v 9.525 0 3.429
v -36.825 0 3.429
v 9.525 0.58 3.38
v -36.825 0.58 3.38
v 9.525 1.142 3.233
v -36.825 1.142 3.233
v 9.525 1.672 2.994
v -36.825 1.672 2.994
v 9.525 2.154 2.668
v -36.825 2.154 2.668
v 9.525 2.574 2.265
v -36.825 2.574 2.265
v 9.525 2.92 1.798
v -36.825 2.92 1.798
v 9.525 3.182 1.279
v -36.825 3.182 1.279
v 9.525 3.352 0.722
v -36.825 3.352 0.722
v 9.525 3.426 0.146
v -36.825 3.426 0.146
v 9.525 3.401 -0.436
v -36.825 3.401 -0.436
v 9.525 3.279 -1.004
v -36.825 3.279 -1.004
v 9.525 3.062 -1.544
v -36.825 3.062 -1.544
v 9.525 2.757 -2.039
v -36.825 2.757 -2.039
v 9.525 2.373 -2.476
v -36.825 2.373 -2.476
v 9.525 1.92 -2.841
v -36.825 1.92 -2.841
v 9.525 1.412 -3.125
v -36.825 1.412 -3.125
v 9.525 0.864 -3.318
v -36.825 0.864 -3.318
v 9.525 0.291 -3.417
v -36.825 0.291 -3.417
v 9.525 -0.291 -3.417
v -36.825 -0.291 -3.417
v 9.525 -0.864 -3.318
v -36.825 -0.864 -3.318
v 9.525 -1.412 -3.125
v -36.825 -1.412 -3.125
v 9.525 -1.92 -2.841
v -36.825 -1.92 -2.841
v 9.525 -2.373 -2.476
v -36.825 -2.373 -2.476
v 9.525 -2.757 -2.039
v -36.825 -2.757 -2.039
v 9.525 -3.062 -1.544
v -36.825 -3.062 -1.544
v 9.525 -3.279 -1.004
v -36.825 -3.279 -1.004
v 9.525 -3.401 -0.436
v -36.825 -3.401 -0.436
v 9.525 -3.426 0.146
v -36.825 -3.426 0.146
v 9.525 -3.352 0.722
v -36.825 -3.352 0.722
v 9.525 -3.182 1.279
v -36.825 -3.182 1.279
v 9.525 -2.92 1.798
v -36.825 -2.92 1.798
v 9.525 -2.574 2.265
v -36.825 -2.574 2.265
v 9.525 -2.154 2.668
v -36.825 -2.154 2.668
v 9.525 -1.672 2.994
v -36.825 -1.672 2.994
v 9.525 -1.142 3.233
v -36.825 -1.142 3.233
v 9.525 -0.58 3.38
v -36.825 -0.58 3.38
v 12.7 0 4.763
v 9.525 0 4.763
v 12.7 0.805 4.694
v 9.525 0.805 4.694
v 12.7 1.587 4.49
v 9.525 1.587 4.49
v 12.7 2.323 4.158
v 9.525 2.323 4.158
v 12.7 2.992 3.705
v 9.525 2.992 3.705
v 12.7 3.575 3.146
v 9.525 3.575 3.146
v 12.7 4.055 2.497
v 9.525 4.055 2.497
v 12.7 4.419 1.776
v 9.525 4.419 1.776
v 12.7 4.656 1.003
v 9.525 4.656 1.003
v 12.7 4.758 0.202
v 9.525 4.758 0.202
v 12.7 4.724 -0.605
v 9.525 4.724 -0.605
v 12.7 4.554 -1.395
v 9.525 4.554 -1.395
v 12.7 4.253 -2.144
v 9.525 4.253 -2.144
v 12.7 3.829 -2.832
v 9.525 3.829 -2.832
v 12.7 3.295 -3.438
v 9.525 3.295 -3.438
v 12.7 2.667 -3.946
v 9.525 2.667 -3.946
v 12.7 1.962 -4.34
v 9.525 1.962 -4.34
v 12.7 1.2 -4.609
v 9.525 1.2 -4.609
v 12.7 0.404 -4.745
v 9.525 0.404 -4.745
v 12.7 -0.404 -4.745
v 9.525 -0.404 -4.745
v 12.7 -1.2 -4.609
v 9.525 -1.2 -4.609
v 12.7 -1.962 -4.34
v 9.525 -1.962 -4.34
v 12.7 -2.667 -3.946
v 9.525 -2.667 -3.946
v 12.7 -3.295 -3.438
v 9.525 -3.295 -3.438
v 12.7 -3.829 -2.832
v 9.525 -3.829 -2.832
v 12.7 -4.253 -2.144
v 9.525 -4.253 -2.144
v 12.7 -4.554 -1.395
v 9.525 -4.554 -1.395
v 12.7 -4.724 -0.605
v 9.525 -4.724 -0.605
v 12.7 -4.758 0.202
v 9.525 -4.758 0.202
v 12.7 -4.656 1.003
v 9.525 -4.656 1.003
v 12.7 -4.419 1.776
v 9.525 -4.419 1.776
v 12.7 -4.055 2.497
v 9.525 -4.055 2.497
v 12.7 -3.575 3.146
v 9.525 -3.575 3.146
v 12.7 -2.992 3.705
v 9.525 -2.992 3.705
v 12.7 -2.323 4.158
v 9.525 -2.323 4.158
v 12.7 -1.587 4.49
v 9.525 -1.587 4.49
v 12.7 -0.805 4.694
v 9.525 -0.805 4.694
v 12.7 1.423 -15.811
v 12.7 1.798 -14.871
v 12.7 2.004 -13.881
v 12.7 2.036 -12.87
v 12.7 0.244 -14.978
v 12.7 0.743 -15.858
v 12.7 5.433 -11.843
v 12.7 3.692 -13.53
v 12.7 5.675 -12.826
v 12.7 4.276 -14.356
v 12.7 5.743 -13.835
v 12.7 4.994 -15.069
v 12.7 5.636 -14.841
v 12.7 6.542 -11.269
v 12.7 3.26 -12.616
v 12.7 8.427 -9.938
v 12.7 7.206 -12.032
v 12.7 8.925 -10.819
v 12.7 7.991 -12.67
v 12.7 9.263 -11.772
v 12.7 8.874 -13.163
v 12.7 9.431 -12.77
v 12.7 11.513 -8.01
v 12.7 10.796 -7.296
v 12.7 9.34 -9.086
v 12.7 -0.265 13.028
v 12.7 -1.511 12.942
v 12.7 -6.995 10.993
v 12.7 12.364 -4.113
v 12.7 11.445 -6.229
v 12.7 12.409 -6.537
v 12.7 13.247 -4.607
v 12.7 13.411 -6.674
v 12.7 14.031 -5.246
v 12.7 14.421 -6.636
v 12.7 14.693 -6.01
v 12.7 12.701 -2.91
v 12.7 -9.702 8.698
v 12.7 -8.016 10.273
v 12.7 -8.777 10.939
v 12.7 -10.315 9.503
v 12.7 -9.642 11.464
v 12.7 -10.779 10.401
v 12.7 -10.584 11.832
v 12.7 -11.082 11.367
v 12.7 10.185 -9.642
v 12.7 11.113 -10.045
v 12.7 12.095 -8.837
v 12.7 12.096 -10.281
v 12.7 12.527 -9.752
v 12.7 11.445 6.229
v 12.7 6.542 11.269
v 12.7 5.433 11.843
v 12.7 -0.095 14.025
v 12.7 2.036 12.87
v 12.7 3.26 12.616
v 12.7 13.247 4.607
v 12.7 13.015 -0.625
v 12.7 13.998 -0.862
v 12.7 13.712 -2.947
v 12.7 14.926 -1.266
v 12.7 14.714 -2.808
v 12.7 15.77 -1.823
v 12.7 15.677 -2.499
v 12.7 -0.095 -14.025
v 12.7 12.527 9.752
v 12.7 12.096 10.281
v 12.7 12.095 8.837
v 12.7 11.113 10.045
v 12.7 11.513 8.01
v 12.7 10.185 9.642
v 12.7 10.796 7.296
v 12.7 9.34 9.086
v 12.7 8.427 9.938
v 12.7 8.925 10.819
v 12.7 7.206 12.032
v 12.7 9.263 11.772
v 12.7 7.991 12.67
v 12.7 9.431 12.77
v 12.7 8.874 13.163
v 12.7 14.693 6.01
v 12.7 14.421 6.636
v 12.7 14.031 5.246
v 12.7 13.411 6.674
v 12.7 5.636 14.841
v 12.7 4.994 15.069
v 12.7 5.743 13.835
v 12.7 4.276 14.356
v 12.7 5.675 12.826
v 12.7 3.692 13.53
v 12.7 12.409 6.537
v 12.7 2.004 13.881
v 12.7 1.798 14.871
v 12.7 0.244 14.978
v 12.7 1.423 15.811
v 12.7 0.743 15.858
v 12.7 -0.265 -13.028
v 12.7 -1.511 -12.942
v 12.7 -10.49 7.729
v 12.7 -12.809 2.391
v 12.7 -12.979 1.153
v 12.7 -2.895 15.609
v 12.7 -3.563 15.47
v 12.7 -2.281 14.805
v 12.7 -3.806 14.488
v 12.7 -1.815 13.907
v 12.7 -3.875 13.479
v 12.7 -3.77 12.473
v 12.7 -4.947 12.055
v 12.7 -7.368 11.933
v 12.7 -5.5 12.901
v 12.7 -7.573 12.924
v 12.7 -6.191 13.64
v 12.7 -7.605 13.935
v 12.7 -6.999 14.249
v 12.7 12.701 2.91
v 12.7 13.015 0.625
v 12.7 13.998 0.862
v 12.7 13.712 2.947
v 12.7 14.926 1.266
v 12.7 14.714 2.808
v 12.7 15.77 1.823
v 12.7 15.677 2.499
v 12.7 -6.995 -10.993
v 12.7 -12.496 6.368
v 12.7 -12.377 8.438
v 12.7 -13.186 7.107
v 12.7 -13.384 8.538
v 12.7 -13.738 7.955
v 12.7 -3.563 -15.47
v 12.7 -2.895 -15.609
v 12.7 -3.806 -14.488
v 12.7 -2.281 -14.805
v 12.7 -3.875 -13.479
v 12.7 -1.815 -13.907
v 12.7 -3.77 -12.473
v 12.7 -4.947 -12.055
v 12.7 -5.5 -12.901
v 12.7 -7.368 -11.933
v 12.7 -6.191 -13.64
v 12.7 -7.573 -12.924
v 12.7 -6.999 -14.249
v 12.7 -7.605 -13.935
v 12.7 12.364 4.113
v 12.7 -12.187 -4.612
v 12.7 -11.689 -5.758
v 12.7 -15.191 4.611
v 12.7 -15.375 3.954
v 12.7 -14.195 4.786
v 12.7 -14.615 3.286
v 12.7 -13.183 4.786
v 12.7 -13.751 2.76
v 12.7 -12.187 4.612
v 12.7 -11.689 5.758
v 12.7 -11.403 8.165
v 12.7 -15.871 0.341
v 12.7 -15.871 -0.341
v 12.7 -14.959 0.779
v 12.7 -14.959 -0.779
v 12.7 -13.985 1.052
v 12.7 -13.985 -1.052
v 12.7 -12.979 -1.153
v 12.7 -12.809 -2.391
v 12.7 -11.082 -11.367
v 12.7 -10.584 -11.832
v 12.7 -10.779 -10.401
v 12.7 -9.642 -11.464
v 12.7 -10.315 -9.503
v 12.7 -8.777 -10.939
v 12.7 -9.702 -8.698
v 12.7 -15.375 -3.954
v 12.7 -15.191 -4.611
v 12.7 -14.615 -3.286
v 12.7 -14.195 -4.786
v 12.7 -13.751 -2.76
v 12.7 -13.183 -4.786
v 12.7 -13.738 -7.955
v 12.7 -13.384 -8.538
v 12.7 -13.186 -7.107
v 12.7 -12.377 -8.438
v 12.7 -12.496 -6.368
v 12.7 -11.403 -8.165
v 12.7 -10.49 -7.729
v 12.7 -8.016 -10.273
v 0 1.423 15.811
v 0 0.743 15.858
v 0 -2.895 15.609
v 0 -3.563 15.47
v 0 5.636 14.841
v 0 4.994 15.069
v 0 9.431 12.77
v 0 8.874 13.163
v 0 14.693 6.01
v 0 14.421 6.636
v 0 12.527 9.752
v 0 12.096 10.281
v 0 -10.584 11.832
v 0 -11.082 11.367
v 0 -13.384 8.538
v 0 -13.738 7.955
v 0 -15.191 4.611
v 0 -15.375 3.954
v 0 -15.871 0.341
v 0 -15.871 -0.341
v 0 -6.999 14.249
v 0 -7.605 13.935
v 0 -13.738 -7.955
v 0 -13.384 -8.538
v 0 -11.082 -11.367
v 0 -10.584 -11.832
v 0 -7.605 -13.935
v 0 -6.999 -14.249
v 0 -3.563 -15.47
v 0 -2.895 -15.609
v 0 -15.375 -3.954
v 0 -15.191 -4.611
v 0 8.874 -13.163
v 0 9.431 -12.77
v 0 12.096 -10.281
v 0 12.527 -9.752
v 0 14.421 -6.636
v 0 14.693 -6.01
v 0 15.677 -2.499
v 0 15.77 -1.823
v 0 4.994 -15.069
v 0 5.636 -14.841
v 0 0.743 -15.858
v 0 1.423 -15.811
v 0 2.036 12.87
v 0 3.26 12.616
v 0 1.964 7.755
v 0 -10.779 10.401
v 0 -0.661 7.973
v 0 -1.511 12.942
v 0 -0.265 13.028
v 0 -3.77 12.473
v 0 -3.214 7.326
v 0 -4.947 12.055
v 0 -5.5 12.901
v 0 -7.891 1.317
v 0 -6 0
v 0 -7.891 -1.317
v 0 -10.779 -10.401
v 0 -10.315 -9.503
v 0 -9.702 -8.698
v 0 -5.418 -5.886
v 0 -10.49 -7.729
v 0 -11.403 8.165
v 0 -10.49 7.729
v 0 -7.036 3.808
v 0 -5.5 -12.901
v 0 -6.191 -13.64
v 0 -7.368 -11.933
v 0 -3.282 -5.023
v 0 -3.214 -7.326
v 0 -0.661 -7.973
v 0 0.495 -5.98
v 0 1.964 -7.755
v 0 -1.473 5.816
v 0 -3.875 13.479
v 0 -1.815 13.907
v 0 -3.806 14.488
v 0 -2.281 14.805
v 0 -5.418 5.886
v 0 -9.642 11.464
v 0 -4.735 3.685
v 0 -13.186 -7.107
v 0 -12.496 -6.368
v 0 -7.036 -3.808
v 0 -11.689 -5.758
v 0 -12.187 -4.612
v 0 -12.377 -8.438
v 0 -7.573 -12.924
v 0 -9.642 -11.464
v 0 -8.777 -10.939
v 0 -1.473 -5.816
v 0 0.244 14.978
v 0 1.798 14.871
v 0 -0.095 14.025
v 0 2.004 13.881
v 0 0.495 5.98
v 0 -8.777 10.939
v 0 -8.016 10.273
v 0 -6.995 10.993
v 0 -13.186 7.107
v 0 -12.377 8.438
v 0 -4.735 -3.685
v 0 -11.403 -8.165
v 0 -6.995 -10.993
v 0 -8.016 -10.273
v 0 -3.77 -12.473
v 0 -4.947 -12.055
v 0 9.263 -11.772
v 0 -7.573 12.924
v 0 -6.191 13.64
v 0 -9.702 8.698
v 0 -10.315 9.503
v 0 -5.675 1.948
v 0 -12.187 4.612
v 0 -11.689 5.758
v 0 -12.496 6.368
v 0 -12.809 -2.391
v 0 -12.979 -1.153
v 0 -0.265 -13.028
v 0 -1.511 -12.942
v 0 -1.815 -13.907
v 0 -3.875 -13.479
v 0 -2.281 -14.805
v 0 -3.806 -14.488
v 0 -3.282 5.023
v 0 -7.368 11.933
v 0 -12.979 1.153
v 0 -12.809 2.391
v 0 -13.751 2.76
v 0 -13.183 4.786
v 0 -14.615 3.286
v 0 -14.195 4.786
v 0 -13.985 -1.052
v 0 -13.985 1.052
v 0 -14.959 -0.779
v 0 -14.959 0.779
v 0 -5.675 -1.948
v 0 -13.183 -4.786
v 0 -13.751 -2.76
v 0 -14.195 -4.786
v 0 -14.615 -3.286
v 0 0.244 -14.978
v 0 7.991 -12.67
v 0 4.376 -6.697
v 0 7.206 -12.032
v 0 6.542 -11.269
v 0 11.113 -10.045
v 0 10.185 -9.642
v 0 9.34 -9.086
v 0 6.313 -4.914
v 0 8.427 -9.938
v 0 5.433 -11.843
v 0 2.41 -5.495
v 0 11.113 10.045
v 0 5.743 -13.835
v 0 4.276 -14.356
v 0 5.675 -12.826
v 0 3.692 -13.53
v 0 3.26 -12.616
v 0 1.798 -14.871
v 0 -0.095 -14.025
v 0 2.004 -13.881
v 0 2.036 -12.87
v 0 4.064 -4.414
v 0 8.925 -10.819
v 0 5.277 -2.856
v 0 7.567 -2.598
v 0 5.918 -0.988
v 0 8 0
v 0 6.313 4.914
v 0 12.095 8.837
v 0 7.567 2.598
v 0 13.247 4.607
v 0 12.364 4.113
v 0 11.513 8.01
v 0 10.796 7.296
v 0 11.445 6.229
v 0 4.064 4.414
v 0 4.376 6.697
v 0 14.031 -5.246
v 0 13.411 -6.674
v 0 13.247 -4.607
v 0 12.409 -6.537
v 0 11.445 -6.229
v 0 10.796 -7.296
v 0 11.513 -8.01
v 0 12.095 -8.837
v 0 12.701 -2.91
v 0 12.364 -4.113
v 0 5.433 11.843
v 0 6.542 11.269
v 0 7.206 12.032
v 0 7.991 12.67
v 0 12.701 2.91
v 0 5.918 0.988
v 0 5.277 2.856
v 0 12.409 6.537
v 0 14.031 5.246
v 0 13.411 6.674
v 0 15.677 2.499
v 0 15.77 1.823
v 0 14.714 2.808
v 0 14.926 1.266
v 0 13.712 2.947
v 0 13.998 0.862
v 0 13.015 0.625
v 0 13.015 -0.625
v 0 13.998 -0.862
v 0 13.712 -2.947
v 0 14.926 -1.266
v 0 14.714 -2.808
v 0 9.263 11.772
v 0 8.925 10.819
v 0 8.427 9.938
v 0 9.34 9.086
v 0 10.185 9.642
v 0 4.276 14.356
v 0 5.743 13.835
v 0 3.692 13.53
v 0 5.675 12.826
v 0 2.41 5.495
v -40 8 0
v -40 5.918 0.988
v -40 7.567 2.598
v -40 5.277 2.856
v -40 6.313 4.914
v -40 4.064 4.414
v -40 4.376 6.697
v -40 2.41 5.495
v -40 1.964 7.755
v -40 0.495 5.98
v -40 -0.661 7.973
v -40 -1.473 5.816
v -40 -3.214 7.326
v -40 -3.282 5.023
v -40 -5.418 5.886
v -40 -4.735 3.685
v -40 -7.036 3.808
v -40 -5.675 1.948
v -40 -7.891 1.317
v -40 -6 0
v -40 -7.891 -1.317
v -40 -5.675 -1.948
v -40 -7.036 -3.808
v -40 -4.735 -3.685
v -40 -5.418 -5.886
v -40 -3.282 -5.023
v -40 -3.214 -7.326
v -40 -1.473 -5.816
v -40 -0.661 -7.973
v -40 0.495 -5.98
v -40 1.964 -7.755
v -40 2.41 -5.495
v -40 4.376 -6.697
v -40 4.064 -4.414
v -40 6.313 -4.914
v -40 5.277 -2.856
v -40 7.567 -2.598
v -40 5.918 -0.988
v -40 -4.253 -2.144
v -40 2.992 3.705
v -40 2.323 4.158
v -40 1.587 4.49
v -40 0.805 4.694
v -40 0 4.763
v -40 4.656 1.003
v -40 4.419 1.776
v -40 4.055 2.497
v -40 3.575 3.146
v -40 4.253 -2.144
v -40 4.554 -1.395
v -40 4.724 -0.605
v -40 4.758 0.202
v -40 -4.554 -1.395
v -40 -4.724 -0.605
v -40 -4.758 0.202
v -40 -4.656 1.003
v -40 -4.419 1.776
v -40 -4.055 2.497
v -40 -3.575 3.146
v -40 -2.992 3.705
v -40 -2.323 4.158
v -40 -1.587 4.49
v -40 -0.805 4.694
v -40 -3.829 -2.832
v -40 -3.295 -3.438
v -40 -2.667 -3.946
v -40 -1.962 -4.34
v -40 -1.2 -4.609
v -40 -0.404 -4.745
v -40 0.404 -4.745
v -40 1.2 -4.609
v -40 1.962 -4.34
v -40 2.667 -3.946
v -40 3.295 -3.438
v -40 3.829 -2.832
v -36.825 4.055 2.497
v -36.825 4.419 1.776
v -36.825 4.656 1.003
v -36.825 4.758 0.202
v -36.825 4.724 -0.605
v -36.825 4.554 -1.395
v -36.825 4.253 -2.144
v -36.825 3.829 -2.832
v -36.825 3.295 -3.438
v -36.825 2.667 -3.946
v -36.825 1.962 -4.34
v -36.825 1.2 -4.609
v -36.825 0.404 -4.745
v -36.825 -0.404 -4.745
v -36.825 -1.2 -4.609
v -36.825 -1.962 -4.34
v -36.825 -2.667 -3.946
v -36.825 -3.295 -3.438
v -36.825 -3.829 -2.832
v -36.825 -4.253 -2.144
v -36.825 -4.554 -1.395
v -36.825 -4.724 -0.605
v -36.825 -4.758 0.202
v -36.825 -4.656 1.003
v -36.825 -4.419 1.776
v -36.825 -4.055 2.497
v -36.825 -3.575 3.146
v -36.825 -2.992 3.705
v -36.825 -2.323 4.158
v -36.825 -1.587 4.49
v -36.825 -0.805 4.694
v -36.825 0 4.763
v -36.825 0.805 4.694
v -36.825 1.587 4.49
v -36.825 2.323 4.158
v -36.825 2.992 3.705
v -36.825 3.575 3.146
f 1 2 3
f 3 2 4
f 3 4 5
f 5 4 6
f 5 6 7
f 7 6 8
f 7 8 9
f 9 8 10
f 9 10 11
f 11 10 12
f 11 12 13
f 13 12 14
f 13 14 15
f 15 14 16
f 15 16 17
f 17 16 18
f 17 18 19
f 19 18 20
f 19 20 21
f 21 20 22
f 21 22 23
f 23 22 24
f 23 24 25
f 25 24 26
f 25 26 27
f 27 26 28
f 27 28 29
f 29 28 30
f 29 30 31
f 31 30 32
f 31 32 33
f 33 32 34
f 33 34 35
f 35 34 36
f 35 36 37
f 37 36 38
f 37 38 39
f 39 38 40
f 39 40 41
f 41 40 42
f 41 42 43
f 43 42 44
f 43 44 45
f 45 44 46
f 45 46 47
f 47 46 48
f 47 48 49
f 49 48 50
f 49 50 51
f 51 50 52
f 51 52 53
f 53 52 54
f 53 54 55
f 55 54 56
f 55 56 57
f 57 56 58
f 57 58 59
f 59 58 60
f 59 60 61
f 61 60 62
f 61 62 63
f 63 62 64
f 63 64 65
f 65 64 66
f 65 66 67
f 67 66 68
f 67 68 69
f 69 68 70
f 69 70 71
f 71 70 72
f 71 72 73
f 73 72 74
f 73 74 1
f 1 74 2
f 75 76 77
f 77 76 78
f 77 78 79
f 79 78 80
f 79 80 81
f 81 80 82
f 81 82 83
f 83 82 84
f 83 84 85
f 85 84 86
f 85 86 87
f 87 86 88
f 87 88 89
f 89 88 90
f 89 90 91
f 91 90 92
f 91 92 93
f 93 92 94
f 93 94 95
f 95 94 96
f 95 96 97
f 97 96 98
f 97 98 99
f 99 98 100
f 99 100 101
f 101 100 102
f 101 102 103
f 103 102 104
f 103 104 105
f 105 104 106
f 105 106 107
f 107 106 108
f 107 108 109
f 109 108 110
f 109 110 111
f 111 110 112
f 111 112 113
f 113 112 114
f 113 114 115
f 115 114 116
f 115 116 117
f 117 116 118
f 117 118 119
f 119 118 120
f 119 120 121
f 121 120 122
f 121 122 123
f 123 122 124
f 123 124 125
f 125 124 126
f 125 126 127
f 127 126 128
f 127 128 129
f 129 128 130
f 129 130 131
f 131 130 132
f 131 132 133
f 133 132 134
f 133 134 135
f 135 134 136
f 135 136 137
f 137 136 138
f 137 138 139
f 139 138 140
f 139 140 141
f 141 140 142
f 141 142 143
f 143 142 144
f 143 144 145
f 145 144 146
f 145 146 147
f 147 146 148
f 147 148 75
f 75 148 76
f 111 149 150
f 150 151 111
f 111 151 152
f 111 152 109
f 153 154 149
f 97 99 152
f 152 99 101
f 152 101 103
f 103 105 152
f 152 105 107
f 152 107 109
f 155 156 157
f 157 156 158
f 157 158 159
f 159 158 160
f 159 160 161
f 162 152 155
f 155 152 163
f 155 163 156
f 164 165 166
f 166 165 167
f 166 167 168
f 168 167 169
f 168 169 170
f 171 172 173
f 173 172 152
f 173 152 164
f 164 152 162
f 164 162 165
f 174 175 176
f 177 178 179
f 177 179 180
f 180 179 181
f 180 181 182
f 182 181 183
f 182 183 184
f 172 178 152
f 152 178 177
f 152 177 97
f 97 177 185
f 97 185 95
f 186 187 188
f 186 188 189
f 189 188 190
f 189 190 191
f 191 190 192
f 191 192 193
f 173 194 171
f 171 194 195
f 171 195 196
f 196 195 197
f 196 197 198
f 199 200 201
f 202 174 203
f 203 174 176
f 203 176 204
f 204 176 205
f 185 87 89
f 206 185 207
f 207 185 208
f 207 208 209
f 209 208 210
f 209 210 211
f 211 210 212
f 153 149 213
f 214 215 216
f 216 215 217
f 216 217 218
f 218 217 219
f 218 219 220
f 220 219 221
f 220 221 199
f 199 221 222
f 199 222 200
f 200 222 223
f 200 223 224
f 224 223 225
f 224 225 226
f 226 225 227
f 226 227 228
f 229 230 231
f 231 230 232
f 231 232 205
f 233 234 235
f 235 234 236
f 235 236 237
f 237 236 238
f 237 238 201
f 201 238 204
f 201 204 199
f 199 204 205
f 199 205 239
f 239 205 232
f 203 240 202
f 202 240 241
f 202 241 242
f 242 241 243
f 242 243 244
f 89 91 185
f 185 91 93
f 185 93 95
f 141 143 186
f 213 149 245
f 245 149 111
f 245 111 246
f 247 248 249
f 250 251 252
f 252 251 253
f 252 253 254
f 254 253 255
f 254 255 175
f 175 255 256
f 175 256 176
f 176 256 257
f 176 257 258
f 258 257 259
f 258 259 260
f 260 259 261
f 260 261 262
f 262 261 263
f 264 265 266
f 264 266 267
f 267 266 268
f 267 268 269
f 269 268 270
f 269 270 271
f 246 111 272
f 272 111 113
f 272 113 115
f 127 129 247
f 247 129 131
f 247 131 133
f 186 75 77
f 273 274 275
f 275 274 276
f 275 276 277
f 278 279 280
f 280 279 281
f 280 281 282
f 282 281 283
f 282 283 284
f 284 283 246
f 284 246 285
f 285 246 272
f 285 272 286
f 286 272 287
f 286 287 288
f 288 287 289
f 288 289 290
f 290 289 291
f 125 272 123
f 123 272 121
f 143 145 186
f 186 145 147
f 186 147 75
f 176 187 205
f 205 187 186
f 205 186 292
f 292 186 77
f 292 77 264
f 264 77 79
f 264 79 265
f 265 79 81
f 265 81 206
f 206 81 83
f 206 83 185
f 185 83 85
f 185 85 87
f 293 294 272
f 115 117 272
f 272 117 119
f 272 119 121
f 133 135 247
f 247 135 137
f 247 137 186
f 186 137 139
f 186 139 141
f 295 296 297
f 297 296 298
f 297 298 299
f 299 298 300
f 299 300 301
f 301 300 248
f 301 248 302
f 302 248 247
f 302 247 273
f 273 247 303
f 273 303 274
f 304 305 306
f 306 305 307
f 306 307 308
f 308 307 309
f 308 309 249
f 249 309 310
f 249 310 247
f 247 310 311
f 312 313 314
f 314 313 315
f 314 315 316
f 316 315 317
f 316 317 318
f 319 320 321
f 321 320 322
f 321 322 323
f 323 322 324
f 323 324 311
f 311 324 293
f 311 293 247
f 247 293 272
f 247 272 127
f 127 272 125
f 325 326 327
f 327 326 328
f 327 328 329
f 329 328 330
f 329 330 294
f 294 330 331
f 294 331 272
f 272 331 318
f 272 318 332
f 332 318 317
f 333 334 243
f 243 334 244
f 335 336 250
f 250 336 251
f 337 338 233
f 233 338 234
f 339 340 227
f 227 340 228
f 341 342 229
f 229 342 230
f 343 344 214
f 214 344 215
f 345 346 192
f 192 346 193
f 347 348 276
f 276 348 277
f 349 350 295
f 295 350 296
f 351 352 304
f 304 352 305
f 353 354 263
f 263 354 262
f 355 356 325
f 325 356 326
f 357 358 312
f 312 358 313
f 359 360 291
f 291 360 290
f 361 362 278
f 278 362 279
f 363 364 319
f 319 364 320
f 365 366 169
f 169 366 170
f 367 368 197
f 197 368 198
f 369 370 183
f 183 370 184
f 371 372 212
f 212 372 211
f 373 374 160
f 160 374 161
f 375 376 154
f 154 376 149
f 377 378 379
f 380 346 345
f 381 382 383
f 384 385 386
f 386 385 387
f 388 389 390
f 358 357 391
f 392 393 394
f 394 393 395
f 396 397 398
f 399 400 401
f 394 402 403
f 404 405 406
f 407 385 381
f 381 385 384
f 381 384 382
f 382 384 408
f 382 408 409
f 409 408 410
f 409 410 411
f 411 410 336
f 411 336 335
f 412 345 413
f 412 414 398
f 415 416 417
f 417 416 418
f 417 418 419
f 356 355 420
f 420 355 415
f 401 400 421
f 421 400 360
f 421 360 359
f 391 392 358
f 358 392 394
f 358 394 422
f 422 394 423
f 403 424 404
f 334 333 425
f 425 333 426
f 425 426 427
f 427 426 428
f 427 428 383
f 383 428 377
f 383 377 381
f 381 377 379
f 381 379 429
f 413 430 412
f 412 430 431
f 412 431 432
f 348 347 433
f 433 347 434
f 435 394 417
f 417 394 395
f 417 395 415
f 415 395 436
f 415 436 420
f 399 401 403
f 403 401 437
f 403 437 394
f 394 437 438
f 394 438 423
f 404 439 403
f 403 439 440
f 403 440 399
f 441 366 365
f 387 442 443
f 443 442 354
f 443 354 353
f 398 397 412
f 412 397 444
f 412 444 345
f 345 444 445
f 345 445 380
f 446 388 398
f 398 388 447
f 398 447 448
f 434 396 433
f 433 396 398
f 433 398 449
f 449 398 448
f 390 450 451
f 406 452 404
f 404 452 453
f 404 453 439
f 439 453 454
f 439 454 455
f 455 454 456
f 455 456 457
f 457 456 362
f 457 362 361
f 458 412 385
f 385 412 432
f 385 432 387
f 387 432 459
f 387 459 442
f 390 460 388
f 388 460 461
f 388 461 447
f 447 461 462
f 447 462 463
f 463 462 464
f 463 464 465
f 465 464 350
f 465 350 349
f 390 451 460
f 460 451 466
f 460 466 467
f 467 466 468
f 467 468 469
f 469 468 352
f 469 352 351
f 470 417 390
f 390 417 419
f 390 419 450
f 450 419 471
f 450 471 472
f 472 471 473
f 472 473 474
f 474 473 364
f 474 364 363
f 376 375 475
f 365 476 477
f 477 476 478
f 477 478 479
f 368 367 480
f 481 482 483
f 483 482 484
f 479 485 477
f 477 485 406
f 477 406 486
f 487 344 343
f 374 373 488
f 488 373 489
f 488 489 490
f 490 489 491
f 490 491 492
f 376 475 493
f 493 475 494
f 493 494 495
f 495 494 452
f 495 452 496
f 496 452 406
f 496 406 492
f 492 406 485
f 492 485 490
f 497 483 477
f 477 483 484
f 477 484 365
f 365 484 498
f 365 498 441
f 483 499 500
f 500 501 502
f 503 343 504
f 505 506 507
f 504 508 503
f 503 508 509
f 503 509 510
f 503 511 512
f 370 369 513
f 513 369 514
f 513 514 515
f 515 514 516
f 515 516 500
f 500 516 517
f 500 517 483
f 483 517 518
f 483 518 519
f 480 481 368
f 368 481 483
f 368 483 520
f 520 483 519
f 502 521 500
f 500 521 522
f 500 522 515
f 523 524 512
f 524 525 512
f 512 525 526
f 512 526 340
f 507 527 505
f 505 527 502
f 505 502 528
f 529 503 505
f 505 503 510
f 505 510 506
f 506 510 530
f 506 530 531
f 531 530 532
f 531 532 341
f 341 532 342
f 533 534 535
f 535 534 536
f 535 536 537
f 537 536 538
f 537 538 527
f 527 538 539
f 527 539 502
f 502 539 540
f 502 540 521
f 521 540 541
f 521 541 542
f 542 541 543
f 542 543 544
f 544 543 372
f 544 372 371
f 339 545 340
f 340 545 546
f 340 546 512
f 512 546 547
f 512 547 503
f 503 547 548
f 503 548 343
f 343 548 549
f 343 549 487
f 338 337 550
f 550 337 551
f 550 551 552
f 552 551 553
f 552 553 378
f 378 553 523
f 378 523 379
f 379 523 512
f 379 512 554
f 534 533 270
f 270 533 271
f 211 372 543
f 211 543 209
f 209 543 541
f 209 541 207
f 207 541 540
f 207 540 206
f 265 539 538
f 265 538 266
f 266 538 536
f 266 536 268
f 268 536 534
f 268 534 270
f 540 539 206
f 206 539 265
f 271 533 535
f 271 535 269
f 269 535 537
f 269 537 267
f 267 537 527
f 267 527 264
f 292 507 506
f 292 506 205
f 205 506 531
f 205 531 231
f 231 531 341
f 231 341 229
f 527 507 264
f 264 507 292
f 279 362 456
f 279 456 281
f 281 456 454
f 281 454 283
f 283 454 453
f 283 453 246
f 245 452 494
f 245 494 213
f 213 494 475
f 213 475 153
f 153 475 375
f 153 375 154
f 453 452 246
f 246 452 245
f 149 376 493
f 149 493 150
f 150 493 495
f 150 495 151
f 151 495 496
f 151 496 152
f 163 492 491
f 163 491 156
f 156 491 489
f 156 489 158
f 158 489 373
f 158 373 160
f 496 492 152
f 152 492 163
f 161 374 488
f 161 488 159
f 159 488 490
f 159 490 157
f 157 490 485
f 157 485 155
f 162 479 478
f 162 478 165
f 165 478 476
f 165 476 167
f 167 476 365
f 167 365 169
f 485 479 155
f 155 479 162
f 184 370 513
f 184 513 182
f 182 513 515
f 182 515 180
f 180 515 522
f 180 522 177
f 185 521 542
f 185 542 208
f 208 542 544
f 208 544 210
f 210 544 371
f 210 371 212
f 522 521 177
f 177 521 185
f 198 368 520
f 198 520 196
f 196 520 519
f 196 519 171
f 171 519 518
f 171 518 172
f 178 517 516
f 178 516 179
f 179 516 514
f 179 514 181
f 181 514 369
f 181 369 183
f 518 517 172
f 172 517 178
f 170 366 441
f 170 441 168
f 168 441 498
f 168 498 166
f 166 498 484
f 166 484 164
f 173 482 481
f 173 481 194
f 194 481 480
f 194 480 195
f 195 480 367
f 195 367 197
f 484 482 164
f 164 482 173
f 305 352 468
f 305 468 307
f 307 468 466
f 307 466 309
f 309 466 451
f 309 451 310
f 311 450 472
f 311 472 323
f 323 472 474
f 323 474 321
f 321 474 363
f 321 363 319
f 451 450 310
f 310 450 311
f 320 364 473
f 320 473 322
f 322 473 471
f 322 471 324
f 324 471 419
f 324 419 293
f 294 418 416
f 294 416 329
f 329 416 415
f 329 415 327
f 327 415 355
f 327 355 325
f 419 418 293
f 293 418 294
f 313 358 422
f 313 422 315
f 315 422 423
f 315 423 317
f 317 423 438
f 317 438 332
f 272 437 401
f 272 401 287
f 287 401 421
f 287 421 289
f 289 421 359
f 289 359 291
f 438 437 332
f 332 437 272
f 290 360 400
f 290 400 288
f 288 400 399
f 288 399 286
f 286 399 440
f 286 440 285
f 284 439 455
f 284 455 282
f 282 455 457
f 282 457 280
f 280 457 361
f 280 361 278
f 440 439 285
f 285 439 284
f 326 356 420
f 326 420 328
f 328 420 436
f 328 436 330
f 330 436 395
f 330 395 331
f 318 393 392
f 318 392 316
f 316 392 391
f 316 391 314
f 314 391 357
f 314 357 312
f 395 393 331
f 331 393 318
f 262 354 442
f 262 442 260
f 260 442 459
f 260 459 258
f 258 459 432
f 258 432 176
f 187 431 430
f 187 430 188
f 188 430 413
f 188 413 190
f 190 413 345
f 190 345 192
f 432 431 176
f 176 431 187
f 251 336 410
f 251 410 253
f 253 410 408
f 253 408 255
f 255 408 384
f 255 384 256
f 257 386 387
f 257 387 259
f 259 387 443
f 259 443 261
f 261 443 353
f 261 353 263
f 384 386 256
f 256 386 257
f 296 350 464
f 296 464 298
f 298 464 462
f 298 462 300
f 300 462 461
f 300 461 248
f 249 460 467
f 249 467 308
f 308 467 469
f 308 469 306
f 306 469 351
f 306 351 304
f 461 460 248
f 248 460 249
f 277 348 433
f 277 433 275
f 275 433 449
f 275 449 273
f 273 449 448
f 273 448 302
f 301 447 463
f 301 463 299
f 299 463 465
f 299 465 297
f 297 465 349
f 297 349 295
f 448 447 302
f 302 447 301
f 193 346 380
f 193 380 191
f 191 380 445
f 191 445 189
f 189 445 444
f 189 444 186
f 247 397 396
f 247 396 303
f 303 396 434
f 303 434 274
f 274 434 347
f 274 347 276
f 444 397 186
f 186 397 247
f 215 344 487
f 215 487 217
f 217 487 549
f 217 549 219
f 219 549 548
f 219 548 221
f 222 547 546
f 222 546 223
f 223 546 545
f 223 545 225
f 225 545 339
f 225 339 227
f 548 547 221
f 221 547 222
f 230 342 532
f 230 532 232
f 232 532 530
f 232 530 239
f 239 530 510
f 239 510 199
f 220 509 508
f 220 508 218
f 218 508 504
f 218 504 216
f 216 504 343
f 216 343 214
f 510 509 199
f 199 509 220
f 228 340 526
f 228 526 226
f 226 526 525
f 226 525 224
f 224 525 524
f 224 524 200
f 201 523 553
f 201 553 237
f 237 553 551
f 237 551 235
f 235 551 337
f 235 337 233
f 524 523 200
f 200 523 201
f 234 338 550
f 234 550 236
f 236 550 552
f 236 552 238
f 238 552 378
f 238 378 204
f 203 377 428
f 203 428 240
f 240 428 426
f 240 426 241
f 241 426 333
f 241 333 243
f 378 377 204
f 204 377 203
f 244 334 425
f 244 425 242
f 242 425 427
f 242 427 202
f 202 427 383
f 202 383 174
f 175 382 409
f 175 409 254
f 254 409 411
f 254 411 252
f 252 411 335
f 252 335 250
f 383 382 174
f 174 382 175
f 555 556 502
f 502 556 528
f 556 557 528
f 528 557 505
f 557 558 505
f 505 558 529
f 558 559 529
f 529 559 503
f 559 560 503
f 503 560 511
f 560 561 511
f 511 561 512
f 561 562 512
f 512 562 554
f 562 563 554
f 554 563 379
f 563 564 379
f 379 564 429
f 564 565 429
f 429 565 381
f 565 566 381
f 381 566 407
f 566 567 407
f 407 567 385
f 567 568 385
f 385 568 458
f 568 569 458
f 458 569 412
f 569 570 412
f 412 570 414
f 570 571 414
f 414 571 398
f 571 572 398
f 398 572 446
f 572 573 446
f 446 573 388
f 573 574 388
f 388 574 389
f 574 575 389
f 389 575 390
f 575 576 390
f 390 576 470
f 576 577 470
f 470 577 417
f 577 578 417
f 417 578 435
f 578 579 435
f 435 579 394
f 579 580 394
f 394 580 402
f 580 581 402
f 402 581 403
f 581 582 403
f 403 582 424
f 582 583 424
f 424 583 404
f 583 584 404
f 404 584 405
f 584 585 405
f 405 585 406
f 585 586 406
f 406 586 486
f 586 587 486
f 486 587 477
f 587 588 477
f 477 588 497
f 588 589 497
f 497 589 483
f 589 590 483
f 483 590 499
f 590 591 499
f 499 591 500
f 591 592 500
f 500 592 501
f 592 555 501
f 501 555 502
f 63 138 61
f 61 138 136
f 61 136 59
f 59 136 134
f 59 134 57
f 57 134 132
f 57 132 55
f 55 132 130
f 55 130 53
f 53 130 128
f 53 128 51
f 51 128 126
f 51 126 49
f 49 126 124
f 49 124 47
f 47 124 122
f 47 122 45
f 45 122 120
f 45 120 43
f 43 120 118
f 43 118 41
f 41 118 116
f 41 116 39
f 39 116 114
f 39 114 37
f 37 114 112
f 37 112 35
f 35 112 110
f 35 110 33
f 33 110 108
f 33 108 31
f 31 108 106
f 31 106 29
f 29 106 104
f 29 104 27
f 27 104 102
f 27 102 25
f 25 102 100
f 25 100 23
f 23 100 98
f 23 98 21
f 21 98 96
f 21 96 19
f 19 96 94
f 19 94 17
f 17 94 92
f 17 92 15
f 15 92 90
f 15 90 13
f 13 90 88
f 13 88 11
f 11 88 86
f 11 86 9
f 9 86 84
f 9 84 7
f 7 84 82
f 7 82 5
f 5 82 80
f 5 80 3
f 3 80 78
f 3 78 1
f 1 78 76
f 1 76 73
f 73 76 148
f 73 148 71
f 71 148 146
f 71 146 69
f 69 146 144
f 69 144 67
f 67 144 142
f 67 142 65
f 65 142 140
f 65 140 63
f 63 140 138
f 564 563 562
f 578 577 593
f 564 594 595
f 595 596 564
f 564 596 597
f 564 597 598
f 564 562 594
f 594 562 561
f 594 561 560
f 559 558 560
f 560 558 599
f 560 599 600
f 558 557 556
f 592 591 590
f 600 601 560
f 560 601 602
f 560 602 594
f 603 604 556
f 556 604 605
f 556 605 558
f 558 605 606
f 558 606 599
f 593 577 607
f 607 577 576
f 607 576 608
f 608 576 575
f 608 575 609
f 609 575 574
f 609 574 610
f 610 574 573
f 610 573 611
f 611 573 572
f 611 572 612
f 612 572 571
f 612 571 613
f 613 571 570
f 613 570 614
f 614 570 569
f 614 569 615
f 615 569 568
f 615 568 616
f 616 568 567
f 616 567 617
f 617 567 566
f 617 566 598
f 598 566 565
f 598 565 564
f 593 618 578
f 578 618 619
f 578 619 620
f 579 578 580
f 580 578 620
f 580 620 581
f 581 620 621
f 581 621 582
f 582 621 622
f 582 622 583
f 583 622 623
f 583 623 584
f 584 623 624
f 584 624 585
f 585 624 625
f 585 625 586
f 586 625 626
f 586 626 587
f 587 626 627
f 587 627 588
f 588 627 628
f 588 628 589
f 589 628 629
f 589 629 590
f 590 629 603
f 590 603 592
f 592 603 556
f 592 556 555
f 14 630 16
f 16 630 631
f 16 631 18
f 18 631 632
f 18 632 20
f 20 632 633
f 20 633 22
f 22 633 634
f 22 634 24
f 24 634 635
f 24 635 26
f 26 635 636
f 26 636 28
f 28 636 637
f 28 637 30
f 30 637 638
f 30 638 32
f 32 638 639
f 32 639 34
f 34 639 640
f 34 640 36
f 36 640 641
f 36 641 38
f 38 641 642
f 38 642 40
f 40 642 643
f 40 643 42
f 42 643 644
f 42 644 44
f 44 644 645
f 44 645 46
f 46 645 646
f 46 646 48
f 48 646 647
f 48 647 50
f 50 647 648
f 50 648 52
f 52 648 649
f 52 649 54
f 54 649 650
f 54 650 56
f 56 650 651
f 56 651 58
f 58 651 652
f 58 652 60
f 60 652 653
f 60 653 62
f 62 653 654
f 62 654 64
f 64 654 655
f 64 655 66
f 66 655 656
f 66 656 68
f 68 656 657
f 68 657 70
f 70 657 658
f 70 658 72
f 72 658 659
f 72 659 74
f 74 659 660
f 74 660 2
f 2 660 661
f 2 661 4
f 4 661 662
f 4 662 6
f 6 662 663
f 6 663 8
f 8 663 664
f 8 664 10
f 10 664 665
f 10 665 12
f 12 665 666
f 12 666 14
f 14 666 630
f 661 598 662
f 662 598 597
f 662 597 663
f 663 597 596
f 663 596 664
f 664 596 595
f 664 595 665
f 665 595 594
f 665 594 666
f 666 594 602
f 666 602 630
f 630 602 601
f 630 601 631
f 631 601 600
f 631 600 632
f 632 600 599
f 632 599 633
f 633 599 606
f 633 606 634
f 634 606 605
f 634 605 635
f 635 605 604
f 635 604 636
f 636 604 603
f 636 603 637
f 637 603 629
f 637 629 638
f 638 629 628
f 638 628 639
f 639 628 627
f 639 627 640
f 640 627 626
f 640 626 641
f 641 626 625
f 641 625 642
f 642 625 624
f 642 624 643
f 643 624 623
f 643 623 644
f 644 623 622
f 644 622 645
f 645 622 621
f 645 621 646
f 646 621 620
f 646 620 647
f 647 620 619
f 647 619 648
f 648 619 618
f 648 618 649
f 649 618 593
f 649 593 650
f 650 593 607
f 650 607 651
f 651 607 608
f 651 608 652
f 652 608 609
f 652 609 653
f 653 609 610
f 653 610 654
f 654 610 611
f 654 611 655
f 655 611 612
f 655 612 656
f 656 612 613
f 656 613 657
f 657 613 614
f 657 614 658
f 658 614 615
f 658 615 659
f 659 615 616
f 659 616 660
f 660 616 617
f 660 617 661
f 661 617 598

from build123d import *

# Parameters (mm, degrees)
BASPROSKE_W              = 12.7
BASPROSKE_H              = 15.875
TOOTHCUT_DEPTH           = 26.793821935
TEETHCUTS_COUNT          = 23
TEETHCUTS_ANGLE          = 344.347826087
BORSKE_R                 = 4.7625
BORE_DEPTH               = 50.8000508
BOSS_EXTRUDE1_DEPTH      = 40
BOSS_EXTRUDE1_DEPTH_BACK = 9.525
SKETCH2_R                = 3.429
CUT_EXTRUDE1_START       = -3.175
SKETCH3_R                = 4.7625
CUT_EXTRUDE1_DEPTH       = 3.175


with BuildPart() as part:
    # BasProSke → Base-Revolve (revolve)
    with BuildSketch(Plane(origin=(0, 0, 0), x_dir=(1, 0, 0), z_dir=(0, 1, 0)), mode=Mode.PRIVATE) as base_revolve_sk:
        with Locations((6.35, 7.9375)):
            Rectangle(BASPROSKE_W, BASPROSKE_H)
    revolve(base_revolve_sk.sketch.rotate(Axis((-10, 0, 0), (1, 0, 0)), 180), axis=Axis((-10, 0, 0), (1, 0, 0)))

    # TooCutSke → ToothCut (cut, through all)
    with BuildSketch(Plane(origin=(0, 0, 0), x_dir=(0, 0, -1), z_dir=(1, 0, 0))):
        with BuildLine():
            ThreePointArc((0.624636509, 13.015219601), (0, 13.0302), (-0.624636509, 13.015219601))
            ThreePointArc((-0.624636509, 13.015219601), (-1.049803144, 14.484664339), (-1.841853601, 15.793362387))
            ThreePointArc((-1.841853601, 15.793362387), (0, 15.9004), (1.841853601, 15.793362387))
            ThreePointArc((1.841853601, 15.793362387), (1.049803144, 14.484664339), (0.624636509, 13.015219601))
        make_face()
    toothcut = extrude(amount=TOOTHCUT_DEPTH, mode=Mode.SUBTRACT)

    # TeethCuts: ToothCut ×23 about axis
    teethcuts_axis = Axis((-10, 0, 0), (1, 0, 0))
    for i in range(1, TEETHCUTS_COUNT):
        add(toothcut.rotate(teethcuts_axis, i * TEETHCUTS_ANGLE / (TEETHCUTS_COUNT - 1)), mode=Mode.SUBTRACT)

    # BorSke → Bore (cut, symmetric)
    with BuildSketch(Plane(origin=(0, 0, 0), x_dir=(0, 0, -1), z_dir=(1, 0, 0))):
        with Locations(Location((0, 0, 0), (0, 0, 180))):
            Circle(BORSKE_R)
    extrude(amount=BORE_DEPTH, both=True, mode=Mode.SUBTRACT)

    # Sketch2 → Boss-Extrude1 (add, two sides: drawn at the far end of the back side and taken through both)
    with BuildSketch(Plane.ZY.offset(-BOSS_EXTRUDE1_DEPTH_BACK)):
        Polygon((2.597595754, 7.566537934), (2.855684358, 5.276842507), (4.913701702, 6.313124075), (4.414343464, 4.06368943), (6.697331826, 4.375585265), (5.49463996, 2.410172548), (7.755202128, 1.963883897), (5.979506958, 0.495476073), (7.972675944, -0.660634764), (5.816401596, -1.472912923), (7.326186613, -3.213563397), (5.02299887, -3.281688949), (5.885791285, -5.418252573), (3.685276276, -4.734843056), (3.807579144, -7.03579001), (1.948196815, -5.67490345), (1.316756722, -7.890890427), (0, -6), (-1.316756722, -7.890890427), (-1.948196815, -5.67490345), (-3.807579144, -7.03579001), (-3.685276276, -4.734843056), (-5.885791285, -5.418252573), (-5.02299887, -3.281688949), (-7.326186613, -3.213563397), (-5.816401596, -1.472912923), (-7.972675944, -0.660634764), (-5.979506958, 0.495476073), (-7.755202128, 1.963883897), (-5.49463996, 2.410172548), (-6.697331826, 4.375585265), (-4.414343464, 4.06368943), (-4.913701702, 6.313124075), (-2.855684358, 5.276842507), (-2.597595754, 7.566537934), (-0.987567542, 5.91816782), (0, 8), (0.987567542, 5.91816782), align=None)
        Circle(SKETCH2_R, mode=Mode.SUBTRACT)
    extrude(amount=BOSS_EXTRUDE1_DEPTH + BOSS_EXTRUDE1_DEPTH_BACK)

    # Sketch3 → Cut-Extrude1 (cut)
    with BuildSketch(Plane.ZY.offset(40).offset(CUT_EXTRUDE1_START)):
        Circle(SKETCH3_R)
    extrude(amount=CUT_EXTRUDE1_DEPTH, mode=Mode.SUBTRACT)


solid = part.part
